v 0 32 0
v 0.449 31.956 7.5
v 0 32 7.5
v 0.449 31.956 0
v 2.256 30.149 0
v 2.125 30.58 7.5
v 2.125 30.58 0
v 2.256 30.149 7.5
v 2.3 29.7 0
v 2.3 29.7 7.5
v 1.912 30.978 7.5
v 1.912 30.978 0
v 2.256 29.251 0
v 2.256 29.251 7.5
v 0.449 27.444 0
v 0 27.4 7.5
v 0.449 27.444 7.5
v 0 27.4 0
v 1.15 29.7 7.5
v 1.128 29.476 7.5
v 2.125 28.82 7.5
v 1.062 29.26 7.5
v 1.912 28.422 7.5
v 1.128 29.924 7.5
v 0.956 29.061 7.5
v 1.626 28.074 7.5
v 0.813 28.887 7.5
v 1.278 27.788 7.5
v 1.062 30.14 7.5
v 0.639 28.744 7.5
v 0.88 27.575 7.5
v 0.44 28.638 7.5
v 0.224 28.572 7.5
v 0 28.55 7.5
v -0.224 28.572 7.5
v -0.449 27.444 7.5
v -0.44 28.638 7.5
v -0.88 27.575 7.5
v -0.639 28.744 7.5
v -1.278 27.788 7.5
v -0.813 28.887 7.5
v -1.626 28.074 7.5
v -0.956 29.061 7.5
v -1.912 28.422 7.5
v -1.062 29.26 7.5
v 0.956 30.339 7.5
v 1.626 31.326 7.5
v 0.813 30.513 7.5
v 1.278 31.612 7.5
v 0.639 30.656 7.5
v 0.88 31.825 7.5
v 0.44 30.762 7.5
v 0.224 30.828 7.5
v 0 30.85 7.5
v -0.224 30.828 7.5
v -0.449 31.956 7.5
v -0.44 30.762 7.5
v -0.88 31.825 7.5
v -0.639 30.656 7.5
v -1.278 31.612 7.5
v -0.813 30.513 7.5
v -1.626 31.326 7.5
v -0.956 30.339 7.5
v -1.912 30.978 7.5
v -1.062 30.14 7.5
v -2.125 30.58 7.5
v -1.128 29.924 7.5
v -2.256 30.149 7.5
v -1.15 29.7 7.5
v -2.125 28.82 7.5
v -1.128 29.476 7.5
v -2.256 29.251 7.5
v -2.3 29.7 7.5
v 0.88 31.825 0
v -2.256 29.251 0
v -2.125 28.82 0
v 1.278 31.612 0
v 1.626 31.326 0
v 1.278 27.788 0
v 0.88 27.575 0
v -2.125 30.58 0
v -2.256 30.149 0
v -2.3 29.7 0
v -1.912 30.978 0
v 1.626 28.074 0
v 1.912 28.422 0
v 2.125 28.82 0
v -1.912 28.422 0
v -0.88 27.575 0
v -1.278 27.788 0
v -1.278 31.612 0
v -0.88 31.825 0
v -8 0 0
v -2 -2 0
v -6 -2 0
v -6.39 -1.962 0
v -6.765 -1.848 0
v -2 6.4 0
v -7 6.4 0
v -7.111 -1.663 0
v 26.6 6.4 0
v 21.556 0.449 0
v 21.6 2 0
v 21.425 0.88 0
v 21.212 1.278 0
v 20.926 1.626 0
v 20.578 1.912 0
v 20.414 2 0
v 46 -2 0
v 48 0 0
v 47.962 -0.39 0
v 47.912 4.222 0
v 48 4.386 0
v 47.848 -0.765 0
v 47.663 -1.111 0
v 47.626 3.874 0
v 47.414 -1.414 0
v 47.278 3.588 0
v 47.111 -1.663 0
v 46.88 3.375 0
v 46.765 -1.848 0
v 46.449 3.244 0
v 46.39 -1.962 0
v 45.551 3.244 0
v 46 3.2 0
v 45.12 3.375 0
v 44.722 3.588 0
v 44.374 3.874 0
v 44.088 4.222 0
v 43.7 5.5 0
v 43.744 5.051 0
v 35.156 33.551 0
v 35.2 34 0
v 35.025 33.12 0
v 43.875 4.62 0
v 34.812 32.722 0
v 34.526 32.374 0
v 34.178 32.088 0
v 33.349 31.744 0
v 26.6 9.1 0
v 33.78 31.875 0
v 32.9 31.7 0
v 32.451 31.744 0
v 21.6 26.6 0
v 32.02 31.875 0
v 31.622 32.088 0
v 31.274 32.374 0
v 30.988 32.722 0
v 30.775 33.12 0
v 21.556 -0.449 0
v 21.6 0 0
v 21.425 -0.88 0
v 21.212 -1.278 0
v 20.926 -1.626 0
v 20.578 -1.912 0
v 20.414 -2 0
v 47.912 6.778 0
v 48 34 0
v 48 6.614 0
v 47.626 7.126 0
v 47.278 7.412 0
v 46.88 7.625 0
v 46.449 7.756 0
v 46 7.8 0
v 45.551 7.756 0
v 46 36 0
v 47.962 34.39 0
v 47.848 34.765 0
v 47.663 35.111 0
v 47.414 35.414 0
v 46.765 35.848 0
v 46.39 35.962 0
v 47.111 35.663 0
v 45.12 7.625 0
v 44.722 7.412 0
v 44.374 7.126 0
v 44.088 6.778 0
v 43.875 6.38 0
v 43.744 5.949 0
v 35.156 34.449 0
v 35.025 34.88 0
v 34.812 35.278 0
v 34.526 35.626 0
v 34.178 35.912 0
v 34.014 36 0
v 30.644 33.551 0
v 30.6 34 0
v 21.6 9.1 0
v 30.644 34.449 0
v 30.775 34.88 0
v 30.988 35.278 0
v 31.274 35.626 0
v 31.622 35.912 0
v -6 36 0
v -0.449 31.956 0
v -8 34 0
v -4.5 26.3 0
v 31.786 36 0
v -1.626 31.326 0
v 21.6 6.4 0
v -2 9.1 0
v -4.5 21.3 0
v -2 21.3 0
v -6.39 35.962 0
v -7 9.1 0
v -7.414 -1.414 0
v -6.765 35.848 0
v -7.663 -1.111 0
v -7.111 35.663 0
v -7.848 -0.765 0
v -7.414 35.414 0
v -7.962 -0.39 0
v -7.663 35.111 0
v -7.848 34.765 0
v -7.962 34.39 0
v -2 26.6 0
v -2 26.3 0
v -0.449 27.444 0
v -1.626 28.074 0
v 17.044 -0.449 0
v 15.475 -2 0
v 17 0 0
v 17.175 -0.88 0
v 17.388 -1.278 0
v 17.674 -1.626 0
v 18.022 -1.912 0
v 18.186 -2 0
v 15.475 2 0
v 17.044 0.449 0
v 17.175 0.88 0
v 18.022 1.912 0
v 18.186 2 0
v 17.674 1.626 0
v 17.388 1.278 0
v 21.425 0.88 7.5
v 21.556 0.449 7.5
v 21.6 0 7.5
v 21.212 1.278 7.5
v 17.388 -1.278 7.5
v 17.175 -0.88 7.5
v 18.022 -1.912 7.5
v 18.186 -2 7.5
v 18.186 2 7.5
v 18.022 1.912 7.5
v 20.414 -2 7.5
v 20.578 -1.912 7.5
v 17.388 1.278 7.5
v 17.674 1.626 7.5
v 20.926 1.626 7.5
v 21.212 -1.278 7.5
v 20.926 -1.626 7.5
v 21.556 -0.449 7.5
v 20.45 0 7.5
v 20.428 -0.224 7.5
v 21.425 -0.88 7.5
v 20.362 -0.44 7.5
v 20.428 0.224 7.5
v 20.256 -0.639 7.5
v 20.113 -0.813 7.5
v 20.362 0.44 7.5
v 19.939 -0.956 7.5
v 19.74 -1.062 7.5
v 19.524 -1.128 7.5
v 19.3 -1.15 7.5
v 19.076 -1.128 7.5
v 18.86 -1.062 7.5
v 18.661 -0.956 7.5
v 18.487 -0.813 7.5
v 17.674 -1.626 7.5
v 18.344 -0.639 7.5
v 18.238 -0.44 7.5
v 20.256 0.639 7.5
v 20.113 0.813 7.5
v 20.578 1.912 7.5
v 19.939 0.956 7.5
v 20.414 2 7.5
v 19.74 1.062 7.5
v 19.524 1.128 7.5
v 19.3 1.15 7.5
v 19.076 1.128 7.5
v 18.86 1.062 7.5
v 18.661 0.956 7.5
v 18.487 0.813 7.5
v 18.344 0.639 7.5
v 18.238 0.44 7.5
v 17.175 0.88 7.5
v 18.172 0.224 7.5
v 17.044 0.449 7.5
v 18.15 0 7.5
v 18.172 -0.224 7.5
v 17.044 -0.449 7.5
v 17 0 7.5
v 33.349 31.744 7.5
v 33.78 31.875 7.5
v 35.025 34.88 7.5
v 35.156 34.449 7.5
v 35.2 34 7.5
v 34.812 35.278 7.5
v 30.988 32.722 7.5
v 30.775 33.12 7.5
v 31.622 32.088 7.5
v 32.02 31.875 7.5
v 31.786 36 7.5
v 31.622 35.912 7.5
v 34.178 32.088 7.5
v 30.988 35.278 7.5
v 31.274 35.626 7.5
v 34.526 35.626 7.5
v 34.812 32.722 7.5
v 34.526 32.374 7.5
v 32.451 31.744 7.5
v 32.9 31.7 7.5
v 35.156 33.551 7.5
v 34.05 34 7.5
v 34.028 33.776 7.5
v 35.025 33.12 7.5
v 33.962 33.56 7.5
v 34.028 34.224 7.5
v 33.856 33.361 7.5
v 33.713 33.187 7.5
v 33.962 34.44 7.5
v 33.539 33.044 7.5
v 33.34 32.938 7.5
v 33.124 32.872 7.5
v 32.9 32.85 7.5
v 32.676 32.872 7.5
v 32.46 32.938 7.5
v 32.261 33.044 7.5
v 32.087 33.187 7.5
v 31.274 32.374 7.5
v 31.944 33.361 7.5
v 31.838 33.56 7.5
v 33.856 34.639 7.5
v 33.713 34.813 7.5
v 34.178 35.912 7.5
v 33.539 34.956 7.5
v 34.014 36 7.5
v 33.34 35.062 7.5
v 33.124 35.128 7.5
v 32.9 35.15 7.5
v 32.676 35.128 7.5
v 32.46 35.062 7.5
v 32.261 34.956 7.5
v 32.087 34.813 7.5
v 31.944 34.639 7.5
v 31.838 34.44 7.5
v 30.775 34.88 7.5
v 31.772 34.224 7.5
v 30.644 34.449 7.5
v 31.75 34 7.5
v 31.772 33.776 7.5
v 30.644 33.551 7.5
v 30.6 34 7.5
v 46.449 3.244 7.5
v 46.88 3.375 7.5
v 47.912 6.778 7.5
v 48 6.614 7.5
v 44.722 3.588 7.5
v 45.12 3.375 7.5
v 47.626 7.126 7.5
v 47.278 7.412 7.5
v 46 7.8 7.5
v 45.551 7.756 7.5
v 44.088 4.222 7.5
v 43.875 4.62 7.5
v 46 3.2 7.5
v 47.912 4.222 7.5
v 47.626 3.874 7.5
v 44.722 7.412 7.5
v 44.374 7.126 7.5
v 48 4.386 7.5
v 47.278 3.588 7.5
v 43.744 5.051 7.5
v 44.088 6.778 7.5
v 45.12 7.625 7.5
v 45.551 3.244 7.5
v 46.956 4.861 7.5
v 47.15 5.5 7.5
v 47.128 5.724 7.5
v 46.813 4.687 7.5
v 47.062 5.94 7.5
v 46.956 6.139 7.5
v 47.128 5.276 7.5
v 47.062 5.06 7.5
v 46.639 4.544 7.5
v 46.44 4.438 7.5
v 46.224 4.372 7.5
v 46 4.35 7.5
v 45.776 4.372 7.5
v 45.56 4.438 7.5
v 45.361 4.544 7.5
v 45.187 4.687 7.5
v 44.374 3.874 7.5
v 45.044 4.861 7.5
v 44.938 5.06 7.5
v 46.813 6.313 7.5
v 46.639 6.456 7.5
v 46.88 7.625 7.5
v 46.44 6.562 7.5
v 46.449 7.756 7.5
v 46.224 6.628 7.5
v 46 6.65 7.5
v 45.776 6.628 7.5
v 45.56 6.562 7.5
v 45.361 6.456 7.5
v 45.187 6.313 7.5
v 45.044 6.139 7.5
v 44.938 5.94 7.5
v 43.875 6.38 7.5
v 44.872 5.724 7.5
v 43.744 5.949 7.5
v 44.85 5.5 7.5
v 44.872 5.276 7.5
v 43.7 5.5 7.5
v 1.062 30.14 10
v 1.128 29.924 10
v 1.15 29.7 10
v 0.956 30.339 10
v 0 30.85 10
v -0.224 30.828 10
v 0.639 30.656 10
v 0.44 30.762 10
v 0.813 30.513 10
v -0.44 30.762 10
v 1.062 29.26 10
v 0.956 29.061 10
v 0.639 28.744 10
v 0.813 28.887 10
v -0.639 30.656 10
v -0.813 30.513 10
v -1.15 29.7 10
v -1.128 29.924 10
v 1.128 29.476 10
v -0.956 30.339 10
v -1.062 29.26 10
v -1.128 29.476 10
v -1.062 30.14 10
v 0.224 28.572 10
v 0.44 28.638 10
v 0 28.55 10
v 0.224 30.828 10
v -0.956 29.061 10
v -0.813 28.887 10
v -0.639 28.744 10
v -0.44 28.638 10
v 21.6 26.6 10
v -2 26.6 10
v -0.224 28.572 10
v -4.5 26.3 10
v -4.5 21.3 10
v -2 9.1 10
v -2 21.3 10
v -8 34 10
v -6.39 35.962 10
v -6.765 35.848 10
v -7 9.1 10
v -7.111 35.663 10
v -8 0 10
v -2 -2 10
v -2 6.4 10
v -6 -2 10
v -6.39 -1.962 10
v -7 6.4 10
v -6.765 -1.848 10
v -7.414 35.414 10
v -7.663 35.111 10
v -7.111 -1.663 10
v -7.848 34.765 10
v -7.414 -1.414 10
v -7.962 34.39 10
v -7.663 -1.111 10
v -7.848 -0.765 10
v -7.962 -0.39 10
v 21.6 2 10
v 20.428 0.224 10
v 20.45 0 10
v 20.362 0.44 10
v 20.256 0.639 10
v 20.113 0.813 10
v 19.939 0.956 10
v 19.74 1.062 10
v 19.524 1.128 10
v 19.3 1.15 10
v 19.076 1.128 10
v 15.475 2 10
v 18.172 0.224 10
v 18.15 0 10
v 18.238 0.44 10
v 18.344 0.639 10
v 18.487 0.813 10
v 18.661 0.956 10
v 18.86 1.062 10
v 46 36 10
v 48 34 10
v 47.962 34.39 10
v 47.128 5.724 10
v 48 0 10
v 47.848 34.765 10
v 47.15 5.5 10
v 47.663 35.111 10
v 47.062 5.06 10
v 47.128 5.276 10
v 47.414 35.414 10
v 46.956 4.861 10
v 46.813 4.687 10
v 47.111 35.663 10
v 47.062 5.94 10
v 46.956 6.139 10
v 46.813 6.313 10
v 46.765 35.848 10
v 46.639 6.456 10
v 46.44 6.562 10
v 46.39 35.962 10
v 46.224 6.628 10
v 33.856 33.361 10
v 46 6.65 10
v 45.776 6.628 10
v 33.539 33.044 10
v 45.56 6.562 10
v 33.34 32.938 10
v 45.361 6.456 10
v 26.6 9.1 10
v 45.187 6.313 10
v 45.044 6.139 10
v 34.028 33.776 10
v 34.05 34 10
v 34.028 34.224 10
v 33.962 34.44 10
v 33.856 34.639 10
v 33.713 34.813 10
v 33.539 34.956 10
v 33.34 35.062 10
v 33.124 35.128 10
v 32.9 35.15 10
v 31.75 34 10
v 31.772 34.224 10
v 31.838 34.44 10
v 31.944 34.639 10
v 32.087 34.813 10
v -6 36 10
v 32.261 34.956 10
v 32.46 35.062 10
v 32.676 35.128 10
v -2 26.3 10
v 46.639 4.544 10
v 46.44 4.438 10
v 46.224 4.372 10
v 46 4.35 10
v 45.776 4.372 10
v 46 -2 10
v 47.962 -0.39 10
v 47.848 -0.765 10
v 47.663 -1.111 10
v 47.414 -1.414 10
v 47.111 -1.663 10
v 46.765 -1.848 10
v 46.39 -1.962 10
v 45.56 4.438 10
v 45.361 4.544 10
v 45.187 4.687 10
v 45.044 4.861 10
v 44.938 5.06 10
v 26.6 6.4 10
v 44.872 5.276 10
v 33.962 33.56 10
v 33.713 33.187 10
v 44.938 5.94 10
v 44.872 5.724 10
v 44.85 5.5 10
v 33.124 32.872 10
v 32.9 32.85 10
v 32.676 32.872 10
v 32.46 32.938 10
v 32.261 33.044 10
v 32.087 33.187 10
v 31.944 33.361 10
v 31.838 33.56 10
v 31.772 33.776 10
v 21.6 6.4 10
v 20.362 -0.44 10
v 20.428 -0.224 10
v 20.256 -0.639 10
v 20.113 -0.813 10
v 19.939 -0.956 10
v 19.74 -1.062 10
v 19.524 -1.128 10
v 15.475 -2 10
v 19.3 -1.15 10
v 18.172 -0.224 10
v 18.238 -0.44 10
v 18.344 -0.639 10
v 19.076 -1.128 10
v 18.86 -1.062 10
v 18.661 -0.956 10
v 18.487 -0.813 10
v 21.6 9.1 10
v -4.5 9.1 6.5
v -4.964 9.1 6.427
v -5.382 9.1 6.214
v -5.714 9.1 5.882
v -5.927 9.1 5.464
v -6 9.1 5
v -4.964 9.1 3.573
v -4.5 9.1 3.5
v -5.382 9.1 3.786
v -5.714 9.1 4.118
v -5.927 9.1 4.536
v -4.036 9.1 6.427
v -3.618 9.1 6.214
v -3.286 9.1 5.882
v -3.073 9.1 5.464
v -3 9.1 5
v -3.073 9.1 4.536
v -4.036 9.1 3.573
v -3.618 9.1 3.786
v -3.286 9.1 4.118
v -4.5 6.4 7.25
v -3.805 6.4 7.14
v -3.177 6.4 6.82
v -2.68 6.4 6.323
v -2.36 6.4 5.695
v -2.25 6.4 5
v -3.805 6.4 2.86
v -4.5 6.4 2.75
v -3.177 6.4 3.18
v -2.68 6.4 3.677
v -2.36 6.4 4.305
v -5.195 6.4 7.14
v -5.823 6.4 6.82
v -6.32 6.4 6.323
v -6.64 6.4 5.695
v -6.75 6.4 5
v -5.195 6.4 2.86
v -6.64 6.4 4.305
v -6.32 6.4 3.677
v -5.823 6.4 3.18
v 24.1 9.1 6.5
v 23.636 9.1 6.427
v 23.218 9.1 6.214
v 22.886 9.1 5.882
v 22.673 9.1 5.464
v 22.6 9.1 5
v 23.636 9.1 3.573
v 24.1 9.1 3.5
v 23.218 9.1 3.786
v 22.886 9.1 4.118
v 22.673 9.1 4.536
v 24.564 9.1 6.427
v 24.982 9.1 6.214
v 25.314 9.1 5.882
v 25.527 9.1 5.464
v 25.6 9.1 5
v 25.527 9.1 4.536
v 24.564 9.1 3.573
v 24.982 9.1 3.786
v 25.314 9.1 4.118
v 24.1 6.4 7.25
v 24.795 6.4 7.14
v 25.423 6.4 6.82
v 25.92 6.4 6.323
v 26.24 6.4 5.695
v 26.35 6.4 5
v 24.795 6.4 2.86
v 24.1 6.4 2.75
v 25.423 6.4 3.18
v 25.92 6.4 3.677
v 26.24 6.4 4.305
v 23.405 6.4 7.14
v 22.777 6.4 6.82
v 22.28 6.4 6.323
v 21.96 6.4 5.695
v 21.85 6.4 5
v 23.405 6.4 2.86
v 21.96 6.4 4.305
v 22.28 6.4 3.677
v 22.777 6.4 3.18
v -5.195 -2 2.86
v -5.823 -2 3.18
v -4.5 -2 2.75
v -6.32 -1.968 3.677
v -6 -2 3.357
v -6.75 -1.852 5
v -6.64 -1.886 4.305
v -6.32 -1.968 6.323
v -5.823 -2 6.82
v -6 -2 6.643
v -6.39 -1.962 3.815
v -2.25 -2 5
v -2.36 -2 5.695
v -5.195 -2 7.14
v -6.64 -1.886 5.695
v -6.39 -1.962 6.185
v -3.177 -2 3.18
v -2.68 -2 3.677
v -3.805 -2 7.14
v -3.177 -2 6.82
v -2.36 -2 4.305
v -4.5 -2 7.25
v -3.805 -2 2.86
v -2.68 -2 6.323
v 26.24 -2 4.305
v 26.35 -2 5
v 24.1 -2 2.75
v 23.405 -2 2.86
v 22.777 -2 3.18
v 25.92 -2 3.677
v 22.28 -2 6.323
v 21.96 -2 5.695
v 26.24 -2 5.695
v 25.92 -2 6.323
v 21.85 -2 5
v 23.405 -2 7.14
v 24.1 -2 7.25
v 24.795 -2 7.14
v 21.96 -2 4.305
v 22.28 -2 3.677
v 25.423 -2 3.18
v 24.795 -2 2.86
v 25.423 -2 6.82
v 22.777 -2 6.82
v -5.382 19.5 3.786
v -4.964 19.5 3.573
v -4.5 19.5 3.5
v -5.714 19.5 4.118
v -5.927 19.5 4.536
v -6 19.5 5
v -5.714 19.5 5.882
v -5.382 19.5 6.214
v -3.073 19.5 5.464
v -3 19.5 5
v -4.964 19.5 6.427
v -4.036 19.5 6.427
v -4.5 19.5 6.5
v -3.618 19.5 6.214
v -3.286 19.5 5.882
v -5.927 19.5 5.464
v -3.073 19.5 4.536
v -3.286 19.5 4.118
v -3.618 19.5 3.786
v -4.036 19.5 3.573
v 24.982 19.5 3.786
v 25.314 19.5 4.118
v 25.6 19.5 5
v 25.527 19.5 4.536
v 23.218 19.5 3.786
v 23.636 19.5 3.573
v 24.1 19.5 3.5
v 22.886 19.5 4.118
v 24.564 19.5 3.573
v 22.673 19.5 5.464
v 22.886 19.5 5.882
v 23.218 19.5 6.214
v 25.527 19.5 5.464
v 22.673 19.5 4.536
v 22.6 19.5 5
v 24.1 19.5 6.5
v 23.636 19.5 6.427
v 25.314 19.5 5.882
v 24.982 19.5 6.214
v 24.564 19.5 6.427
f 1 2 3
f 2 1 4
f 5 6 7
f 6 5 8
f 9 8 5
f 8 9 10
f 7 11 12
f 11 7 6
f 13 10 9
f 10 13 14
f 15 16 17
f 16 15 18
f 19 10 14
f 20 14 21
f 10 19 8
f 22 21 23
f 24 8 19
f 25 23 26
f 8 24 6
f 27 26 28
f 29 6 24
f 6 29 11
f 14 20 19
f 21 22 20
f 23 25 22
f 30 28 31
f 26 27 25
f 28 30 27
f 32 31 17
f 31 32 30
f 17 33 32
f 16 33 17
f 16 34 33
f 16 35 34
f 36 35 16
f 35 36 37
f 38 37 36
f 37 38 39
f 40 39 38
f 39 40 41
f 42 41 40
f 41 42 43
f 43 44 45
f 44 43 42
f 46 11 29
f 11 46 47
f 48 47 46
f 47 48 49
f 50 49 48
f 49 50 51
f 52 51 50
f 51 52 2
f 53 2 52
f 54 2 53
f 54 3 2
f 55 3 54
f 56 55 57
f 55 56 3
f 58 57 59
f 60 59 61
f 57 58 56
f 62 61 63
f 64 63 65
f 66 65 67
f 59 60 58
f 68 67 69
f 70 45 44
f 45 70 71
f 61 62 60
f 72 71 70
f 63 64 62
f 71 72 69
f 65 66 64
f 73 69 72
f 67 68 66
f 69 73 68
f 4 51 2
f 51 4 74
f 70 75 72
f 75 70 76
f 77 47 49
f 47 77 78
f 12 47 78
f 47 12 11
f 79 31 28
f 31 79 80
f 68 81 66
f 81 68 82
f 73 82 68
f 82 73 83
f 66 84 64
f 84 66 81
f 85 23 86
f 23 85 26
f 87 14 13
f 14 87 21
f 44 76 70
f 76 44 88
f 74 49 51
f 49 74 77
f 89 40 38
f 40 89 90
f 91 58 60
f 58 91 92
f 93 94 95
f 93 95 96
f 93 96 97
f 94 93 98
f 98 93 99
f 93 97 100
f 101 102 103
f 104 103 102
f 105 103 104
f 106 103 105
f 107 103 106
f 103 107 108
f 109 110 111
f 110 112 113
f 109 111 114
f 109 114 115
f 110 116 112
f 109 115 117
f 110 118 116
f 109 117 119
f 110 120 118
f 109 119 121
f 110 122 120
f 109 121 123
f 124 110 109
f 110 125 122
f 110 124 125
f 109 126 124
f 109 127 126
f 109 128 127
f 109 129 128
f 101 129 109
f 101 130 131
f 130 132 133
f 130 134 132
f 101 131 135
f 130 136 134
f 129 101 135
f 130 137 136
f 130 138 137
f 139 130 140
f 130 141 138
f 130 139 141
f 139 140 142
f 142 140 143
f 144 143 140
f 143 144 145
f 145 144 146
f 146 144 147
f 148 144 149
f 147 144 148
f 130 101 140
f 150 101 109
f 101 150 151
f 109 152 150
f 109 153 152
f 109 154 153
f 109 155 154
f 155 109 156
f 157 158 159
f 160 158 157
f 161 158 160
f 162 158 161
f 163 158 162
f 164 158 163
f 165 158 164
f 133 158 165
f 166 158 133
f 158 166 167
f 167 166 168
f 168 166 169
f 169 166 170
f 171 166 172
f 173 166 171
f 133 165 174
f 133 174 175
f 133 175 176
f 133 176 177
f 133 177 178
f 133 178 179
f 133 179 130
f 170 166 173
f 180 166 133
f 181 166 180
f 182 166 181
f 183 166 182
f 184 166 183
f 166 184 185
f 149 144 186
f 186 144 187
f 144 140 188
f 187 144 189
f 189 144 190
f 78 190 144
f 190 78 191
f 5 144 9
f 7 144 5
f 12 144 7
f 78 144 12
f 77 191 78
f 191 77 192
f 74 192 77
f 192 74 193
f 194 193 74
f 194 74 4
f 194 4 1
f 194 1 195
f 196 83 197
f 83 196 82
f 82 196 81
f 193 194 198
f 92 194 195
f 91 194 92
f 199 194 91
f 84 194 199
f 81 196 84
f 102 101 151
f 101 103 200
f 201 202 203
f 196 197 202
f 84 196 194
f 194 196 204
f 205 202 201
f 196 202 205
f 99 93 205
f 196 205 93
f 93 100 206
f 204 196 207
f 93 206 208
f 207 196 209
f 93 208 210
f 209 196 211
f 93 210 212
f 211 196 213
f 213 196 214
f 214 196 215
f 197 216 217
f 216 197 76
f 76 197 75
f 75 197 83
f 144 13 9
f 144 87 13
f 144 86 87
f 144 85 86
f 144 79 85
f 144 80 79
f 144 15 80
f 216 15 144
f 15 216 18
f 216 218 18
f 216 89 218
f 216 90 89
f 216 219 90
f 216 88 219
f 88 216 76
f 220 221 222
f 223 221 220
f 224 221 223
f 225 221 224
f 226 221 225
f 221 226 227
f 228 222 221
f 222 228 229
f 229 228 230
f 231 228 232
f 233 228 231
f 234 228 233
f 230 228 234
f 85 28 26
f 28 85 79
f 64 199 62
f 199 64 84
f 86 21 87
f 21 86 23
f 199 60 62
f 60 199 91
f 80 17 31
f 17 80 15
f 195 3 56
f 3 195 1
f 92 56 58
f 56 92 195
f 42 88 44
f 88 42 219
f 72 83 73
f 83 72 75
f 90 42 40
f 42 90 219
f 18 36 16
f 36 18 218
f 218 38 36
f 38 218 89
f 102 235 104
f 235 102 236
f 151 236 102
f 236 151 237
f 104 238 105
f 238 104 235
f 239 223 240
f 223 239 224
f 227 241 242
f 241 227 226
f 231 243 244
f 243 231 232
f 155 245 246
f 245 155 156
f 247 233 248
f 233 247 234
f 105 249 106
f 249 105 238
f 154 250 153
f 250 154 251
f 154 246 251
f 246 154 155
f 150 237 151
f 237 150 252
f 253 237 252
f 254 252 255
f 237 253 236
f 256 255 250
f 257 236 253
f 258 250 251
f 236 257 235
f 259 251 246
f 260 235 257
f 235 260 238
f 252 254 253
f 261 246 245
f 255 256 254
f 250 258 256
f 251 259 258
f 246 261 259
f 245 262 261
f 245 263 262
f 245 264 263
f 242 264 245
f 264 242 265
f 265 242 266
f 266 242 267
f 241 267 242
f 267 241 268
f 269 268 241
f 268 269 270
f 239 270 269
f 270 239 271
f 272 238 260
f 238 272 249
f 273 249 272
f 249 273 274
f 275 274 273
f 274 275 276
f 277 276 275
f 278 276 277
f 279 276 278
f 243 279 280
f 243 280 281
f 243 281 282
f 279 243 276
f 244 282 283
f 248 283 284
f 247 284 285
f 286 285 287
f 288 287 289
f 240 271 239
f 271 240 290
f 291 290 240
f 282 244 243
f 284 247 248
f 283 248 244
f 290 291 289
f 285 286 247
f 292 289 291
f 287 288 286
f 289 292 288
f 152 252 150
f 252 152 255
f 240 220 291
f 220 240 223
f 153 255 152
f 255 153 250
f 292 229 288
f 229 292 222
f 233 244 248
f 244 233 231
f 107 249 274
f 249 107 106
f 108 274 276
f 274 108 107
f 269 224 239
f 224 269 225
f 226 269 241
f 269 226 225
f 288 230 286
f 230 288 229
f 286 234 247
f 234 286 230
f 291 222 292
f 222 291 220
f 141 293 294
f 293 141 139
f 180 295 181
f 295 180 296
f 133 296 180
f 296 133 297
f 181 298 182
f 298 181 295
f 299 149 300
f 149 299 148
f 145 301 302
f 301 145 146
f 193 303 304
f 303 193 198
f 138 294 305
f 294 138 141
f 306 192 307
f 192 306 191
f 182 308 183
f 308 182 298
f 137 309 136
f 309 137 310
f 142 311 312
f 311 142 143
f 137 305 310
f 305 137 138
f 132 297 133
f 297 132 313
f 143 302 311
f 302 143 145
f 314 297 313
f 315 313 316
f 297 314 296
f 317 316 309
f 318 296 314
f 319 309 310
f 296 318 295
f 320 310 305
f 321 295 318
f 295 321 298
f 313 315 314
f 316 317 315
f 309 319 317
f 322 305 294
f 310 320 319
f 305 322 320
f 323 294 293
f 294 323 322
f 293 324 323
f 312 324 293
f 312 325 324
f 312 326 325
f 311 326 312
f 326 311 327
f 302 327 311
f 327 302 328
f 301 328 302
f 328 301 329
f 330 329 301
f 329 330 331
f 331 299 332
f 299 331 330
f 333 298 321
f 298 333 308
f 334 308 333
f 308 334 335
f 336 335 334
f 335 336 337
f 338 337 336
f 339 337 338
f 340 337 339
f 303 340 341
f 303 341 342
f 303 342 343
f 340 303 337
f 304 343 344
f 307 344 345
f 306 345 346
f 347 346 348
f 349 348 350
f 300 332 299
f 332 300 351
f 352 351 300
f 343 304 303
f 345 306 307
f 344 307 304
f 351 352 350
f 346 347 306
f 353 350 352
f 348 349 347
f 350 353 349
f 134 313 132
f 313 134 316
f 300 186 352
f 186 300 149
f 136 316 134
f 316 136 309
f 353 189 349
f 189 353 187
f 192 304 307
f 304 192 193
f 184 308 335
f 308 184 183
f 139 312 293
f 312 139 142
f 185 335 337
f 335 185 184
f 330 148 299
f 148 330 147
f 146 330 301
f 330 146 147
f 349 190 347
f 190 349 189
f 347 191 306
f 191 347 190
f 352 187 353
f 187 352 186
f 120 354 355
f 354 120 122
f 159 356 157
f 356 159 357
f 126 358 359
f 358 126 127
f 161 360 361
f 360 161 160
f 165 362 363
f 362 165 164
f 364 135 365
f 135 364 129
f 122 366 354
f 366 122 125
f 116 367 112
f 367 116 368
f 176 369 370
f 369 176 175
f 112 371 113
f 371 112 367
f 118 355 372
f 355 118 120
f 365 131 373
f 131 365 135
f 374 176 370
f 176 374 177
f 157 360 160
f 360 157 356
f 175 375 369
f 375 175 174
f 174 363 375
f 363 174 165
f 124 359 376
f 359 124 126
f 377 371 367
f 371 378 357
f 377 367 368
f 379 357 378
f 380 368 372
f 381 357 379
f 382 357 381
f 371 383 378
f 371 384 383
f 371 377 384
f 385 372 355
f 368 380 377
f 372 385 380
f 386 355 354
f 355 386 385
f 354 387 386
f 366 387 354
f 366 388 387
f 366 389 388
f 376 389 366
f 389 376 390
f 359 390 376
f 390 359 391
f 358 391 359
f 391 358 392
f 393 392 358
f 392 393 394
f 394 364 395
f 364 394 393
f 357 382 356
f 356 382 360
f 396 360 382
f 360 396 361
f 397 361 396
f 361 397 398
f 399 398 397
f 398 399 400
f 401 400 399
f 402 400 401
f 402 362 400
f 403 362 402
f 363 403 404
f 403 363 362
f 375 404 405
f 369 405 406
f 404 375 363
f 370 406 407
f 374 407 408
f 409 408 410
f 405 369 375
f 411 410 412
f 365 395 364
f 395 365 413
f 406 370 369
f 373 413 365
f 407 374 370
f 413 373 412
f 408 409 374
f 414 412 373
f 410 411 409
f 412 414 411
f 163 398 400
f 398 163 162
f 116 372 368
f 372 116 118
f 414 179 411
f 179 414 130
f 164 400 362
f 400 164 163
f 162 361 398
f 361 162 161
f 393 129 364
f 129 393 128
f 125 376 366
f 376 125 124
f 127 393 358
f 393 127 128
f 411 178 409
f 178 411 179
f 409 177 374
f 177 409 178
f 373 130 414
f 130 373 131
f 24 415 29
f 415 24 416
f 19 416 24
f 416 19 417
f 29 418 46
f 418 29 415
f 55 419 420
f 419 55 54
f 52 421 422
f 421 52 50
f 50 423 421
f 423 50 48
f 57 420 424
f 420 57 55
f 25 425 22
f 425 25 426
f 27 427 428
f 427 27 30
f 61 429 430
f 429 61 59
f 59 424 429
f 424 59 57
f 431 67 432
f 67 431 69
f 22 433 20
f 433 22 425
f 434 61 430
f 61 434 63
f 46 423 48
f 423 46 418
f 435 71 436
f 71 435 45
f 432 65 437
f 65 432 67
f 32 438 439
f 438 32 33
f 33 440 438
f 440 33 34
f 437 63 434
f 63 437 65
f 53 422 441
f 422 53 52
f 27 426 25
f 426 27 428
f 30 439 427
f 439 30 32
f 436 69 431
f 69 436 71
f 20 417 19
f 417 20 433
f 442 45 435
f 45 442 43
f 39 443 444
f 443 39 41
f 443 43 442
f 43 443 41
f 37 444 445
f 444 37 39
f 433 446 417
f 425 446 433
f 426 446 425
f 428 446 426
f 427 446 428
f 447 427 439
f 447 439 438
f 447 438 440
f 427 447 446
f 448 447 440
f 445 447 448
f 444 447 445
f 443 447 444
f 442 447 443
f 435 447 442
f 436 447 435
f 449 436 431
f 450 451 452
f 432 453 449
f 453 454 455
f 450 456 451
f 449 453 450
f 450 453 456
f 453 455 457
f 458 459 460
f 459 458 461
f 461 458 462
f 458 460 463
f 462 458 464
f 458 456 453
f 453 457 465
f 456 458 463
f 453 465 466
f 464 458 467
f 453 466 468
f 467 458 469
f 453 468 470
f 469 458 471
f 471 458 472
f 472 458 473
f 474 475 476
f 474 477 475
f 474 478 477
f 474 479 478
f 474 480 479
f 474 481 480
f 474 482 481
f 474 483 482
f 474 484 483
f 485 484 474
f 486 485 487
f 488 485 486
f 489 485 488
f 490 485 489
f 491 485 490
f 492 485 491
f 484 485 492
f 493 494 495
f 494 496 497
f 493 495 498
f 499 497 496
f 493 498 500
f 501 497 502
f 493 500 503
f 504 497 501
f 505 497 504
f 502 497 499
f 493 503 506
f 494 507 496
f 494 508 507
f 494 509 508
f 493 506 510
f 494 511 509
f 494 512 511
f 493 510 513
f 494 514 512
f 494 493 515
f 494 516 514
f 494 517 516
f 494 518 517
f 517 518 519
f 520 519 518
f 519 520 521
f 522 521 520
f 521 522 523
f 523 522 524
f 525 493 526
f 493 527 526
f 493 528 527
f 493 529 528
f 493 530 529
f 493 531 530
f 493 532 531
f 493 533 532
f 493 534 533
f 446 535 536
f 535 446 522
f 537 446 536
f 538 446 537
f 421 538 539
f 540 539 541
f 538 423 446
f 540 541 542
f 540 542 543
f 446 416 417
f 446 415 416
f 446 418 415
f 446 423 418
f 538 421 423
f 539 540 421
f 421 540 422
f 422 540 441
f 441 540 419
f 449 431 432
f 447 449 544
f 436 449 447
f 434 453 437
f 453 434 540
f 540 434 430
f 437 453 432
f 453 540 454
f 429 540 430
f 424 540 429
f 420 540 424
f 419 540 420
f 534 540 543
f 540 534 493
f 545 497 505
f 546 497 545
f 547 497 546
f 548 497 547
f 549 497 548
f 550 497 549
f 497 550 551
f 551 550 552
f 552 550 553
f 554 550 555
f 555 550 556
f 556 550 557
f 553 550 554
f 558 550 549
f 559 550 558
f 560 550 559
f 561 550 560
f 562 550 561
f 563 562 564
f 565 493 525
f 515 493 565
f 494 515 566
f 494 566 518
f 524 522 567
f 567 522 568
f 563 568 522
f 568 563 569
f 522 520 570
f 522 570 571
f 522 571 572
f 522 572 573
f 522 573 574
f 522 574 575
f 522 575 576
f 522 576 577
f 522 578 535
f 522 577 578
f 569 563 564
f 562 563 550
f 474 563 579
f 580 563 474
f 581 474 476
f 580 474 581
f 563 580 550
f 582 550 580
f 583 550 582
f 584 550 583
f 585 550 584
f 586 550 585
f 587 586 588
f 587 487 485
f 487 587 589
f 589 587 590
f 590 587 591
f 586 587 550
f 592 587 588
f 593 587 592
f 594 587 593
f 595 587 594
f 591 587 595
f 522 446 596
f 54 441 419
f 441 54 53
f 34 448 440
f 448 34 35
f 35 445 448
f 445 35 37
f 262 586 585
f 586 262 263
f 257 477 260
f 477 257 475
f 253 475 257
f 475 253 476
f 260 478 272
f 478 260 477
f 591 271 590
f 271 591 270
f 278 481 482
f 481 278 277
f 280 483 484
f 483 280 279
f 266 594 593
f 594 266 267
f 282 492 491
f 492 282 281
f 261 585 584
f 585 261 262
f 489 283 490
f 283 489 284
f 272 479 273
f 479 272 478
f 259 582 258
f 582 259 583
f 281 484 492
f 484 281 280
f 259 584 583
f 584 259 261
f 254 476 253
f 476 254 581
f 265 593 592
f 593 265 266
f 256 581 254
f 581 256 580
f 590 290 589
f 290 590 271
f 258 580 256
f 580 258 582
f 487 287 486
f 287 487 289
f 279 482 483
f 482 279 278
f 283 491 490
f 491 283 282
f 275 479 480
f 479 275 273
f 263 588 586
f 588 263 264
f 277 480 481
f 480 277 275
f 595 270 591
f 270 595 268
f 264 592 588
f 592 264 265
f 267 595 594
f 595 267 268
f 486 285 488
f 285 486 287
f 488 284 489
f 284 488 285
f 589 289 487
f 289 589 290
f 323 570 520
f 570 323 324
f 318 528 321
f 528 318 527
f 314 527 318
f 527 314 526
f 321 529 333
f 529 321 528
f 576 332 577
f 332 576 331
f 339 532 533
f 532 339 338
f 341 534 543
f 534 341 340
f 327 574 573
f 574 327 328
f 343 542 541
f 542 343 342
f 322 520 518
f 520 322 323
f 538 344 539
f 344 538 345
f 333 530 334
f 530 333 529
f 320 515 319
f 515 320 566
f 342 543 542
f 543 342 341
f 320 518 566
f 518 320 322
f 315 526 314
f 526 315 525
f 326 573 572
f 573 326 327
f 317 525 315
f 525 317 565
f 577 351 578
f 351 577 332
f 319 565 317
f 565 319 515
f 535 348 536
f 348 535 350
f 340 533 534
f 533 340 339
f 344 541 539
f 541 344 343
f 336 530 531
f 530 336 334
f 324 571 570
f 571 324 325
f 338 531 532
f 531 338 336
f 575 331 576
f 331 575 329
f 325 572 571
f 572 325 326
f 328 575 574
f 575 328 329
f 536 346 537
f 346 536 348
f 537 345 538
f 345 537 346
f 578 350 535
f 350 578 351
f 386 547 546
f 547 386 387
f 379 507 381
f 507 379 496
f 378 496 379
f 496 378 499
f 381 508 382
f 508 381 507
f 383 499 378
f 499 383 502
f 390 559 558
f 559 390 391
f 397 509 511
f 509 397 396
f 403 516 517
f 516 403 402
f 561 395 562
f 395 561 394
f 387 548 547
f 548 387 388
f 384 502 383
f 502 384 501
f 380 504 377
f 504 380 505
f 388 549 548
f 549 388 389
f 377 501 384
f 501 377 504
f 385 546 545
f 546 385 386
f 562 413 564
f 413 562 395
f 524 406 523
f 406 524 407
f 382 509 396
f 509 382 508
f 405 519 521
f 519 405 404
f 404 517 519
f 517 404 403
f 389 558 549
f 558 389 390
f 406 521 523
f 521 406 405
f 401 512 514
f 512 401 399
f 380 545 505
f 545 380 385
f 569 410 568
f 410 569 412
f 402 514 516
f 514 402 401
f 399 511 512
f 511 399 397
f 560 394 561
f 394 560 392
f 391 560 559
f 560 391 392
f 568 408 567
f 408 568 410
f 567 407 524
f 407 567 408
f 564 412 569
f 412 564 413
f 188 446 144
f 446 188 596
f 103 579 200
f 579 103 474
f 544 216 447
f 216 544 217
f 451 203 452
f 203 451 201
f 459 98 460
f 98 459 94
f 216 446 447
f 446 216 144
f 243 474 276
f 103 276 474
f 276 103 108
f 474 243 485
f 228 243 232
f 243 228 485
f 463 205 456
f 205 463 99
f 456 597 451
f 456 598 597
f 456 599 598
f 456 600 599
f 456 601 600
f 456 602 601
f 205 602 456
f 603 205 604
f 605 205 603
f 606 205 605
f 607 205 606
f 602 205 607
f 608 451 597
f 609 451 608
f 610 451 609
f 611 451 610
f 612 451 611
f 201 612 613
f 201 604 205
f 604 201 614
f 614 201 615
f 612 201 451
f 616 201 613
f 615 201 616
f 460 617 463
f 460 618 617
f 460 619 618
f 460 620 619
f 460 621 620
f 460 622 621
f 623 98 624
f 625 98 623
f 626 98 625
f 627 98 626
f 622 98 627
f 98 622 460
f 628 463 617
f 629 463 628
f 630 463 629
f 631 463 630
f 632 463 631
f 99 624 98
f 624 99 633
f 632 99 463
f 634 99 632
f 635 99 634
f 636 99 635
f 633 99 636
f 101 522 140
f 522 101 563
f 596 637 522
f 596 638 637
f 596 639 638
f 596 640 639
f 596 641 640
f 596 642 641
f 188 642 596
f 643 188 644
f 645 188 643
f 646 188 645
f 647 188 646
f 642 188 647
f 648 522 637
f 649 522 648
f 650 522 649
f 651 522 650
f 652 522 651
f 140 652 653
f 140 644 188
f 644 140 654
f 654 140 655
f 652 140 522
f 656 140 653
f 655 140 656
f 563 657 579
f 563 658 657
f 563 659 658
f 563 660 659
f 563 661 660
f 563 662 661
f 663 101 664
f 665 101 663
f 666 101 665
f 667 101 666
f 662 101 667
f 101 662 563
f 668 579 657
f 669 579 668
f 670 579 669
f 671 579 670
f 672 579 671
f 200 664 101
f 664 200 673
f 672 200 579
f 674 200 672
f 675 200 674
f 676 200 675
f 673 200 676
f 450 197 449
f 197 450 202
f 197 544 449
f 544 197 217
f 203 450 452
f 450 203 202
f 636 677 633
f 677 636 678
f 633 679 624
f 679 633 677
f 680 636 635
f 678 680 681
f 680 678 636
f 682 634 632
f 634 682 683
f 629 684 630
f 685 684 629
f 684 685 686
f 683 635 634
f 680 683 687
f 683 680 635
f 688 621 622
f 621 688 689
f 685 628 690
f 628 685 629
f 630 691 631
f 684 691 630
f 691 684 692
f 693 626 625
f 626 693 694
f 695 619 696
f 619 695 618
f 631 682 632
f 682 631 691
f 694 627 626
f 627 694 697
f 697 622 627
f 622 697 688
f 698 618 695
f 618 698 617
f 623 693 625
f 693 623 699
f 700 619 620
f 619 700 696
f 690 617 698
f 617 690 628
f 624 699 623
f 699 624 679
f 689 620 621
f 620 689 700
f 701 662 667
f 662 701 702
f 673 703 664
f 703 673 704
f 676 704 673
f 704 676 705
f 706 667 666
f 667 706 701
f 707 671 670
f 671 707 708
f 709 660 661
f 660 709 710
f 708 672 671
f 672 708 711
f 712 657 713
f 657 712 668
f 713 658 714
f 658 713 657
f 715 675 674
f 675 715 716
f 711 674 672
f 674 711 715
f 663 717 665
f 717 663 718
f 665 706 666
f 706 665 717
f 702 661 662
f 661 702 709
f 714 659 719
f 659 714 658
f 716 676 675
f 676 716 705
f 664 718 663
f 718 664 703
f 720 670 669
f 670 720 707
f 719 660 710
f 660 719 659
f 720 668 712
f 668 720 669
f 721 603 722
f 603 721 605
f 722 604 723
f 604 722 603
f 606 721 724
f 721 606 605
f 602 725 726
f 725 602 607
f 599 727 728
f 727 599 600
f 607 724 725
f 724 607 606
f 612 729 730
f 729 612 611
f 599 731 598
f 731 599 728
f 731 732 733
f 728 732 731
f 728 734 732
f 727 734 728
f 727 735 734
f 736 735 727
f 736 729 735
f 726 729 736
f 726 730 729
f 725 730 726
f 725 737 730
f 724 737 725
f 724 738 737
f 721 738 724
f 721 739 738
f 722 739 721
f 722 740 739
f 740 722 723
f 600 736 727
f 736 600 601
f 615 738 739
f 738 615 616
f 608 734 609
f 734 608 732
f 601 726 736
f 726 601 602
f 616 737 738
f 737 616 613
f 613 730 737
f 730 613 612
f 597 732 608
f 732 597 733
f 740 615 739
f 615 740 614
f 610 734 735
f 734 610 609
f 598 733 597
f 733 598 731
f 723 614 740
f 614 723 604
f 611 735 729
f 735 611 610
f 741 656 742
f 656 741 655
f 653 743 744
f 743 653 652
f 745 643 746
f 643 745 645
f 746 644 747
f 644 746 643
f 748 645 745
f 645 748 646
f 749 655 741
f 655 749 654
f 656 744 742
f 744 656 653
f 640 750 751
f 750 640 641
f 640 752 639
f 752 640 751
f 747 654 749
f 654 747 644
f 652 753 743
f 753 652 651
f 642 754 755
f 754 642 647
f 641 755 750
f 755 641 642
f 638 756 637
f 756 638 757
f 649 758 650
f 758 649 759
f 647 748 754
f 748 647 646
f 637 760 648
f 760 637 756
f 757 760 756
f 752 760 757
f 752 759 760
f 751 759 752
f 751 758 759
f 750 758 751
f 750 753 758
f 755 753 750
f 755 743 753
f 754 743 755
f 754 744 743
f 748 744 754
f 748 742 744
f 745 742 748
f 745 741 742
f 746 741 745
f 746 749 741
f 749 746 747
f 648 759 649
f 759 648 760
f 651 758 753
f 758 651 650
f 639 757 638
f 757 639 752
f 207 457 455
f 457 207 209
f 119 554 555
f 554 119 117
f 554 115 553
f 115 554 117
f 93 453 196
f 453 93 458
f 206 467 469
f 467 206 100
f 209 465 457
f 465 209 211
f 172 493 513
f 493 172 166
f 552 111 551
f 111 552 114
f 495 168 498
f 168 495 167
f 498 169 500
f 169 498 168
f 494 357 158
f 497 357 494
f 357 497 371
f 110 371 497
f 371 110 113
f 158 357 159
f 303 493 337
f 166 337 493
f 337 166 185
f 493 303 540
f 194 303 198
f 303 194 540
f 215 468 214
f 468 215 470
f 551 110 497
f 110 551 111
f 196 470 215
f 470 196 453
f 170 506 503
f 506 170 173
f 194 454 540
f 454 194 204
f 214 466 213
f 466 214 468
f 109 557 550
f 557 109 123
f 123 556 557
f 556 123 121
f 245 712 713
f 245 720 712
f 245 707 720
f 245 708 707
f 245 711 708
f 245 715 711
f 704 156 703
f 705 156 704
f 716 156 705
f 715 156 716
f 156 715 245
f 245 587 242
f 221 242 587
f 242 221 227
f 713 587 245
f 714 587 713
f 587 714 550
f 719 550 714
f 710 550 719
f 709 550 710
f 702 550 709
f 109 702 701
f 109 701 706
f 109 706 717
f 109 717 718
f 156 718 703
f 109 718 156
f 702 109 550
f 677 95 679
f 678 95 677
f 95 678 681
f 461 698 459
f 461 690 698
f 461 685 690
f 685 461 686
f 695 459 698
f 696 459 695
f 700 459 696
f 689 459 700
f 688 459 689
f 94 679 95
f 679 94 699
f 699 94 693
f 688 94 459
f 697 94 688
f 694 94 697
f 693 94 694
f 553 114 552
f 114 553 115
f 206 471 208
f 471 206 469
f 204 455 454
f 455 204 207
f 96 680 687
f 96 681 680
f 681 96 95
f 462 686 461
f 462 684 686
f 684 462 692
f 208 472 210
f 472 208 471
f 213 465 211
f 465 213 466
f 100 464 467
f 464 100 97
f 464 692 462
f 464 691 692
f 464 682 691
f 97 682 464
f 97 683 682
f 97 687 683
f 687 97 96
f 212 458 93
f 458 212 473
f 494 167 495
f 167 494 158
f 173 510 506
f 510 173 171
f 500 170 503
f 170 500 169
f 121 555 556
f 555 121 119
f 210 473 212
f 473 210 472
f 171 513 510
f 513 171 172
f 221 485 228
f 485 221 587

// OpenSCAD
// Function to create a plate with rounded corners
module base(length, width, height, corner_radius) {
    minkowski() {
        cube([length, width, height/2], center=false);
        cylinder(d=corner_radius, h=height/2, $fn=32);
    };
}

module cylinder_set(d_insert_hole, centers, height) {
    for (center = centers) {
        translate([center[0], center[1], 0])
            cylinder(h=height, d=d_insert_hole, $fn=32);
    }
}

module drill(drill_depth, diameter) {
    tab_width = 5;
    width = 23.3;
    translate([0, 0, 0])
        rotate([0, 90, 90])
            cylinder(d=diameter, h=drill_depth, $fn=20);
    translate([width + tab_width +0.3, 0, 0])
        rotate([0, 90, 90])
            cylinder(d=diameter, h=drill_depth, $fn=20);
}

// Servo module
module servo(clarence) {
    tab_length = 2.4;
    tab_width = 5;
    length = 24.3;
    from_fron_shift = length - (17.5 + tab_length);
    width = 23.3;
    height = 12.4;
    union() {
        union() {
            cube([width+clarence, length+clarence, height+clarence]);
            translate([-tab_width, from_fron_shift, 0])
                cube([tab_width+clarence, tab_length+clarence, height+clarence]);
            translate([width, from_fron_shift, 0])
                cube([tab_width+clarence, tab_length+clarence, height+clarence]);
        }
        translate([-2.5, length - 5, 0])
        cube([2.5, 5, height]);
    }
}
// Example usage
over_length = 6;
clarence = 0.3;
length = 46;
width = 34;
height = 10;
d_insert_hole = 4.6;
corner_radius = 4;

centers = [
    [0, 29.7],
    [19.3, 0],
    [32.9, 34],
    [46, 5.5]
];

difference() {
    translate([-over_length, 0, 0])
        base(length + over_length, width, height, corner_radius);
    cylinder_set(d_insert_hole, centers, 3 * height/4);
    translate([0, 0, height/2])
        cylinder_set(d_insert_hole / 2, centers, height/2);
translate([-corner_radius/2,2,-(12.4-height)/2])
    servo(clarence);
translate([-corner_radius-0.5,-5 ,height/2])
    drill(12, 4.5);
translate([-corner_radius-0.5, 5 ,height/2])
    #drill(14.5, 3);
translate([-2,-5 ,0])
    #cube([3 * 23.3 /4, 10,  height]);
}
